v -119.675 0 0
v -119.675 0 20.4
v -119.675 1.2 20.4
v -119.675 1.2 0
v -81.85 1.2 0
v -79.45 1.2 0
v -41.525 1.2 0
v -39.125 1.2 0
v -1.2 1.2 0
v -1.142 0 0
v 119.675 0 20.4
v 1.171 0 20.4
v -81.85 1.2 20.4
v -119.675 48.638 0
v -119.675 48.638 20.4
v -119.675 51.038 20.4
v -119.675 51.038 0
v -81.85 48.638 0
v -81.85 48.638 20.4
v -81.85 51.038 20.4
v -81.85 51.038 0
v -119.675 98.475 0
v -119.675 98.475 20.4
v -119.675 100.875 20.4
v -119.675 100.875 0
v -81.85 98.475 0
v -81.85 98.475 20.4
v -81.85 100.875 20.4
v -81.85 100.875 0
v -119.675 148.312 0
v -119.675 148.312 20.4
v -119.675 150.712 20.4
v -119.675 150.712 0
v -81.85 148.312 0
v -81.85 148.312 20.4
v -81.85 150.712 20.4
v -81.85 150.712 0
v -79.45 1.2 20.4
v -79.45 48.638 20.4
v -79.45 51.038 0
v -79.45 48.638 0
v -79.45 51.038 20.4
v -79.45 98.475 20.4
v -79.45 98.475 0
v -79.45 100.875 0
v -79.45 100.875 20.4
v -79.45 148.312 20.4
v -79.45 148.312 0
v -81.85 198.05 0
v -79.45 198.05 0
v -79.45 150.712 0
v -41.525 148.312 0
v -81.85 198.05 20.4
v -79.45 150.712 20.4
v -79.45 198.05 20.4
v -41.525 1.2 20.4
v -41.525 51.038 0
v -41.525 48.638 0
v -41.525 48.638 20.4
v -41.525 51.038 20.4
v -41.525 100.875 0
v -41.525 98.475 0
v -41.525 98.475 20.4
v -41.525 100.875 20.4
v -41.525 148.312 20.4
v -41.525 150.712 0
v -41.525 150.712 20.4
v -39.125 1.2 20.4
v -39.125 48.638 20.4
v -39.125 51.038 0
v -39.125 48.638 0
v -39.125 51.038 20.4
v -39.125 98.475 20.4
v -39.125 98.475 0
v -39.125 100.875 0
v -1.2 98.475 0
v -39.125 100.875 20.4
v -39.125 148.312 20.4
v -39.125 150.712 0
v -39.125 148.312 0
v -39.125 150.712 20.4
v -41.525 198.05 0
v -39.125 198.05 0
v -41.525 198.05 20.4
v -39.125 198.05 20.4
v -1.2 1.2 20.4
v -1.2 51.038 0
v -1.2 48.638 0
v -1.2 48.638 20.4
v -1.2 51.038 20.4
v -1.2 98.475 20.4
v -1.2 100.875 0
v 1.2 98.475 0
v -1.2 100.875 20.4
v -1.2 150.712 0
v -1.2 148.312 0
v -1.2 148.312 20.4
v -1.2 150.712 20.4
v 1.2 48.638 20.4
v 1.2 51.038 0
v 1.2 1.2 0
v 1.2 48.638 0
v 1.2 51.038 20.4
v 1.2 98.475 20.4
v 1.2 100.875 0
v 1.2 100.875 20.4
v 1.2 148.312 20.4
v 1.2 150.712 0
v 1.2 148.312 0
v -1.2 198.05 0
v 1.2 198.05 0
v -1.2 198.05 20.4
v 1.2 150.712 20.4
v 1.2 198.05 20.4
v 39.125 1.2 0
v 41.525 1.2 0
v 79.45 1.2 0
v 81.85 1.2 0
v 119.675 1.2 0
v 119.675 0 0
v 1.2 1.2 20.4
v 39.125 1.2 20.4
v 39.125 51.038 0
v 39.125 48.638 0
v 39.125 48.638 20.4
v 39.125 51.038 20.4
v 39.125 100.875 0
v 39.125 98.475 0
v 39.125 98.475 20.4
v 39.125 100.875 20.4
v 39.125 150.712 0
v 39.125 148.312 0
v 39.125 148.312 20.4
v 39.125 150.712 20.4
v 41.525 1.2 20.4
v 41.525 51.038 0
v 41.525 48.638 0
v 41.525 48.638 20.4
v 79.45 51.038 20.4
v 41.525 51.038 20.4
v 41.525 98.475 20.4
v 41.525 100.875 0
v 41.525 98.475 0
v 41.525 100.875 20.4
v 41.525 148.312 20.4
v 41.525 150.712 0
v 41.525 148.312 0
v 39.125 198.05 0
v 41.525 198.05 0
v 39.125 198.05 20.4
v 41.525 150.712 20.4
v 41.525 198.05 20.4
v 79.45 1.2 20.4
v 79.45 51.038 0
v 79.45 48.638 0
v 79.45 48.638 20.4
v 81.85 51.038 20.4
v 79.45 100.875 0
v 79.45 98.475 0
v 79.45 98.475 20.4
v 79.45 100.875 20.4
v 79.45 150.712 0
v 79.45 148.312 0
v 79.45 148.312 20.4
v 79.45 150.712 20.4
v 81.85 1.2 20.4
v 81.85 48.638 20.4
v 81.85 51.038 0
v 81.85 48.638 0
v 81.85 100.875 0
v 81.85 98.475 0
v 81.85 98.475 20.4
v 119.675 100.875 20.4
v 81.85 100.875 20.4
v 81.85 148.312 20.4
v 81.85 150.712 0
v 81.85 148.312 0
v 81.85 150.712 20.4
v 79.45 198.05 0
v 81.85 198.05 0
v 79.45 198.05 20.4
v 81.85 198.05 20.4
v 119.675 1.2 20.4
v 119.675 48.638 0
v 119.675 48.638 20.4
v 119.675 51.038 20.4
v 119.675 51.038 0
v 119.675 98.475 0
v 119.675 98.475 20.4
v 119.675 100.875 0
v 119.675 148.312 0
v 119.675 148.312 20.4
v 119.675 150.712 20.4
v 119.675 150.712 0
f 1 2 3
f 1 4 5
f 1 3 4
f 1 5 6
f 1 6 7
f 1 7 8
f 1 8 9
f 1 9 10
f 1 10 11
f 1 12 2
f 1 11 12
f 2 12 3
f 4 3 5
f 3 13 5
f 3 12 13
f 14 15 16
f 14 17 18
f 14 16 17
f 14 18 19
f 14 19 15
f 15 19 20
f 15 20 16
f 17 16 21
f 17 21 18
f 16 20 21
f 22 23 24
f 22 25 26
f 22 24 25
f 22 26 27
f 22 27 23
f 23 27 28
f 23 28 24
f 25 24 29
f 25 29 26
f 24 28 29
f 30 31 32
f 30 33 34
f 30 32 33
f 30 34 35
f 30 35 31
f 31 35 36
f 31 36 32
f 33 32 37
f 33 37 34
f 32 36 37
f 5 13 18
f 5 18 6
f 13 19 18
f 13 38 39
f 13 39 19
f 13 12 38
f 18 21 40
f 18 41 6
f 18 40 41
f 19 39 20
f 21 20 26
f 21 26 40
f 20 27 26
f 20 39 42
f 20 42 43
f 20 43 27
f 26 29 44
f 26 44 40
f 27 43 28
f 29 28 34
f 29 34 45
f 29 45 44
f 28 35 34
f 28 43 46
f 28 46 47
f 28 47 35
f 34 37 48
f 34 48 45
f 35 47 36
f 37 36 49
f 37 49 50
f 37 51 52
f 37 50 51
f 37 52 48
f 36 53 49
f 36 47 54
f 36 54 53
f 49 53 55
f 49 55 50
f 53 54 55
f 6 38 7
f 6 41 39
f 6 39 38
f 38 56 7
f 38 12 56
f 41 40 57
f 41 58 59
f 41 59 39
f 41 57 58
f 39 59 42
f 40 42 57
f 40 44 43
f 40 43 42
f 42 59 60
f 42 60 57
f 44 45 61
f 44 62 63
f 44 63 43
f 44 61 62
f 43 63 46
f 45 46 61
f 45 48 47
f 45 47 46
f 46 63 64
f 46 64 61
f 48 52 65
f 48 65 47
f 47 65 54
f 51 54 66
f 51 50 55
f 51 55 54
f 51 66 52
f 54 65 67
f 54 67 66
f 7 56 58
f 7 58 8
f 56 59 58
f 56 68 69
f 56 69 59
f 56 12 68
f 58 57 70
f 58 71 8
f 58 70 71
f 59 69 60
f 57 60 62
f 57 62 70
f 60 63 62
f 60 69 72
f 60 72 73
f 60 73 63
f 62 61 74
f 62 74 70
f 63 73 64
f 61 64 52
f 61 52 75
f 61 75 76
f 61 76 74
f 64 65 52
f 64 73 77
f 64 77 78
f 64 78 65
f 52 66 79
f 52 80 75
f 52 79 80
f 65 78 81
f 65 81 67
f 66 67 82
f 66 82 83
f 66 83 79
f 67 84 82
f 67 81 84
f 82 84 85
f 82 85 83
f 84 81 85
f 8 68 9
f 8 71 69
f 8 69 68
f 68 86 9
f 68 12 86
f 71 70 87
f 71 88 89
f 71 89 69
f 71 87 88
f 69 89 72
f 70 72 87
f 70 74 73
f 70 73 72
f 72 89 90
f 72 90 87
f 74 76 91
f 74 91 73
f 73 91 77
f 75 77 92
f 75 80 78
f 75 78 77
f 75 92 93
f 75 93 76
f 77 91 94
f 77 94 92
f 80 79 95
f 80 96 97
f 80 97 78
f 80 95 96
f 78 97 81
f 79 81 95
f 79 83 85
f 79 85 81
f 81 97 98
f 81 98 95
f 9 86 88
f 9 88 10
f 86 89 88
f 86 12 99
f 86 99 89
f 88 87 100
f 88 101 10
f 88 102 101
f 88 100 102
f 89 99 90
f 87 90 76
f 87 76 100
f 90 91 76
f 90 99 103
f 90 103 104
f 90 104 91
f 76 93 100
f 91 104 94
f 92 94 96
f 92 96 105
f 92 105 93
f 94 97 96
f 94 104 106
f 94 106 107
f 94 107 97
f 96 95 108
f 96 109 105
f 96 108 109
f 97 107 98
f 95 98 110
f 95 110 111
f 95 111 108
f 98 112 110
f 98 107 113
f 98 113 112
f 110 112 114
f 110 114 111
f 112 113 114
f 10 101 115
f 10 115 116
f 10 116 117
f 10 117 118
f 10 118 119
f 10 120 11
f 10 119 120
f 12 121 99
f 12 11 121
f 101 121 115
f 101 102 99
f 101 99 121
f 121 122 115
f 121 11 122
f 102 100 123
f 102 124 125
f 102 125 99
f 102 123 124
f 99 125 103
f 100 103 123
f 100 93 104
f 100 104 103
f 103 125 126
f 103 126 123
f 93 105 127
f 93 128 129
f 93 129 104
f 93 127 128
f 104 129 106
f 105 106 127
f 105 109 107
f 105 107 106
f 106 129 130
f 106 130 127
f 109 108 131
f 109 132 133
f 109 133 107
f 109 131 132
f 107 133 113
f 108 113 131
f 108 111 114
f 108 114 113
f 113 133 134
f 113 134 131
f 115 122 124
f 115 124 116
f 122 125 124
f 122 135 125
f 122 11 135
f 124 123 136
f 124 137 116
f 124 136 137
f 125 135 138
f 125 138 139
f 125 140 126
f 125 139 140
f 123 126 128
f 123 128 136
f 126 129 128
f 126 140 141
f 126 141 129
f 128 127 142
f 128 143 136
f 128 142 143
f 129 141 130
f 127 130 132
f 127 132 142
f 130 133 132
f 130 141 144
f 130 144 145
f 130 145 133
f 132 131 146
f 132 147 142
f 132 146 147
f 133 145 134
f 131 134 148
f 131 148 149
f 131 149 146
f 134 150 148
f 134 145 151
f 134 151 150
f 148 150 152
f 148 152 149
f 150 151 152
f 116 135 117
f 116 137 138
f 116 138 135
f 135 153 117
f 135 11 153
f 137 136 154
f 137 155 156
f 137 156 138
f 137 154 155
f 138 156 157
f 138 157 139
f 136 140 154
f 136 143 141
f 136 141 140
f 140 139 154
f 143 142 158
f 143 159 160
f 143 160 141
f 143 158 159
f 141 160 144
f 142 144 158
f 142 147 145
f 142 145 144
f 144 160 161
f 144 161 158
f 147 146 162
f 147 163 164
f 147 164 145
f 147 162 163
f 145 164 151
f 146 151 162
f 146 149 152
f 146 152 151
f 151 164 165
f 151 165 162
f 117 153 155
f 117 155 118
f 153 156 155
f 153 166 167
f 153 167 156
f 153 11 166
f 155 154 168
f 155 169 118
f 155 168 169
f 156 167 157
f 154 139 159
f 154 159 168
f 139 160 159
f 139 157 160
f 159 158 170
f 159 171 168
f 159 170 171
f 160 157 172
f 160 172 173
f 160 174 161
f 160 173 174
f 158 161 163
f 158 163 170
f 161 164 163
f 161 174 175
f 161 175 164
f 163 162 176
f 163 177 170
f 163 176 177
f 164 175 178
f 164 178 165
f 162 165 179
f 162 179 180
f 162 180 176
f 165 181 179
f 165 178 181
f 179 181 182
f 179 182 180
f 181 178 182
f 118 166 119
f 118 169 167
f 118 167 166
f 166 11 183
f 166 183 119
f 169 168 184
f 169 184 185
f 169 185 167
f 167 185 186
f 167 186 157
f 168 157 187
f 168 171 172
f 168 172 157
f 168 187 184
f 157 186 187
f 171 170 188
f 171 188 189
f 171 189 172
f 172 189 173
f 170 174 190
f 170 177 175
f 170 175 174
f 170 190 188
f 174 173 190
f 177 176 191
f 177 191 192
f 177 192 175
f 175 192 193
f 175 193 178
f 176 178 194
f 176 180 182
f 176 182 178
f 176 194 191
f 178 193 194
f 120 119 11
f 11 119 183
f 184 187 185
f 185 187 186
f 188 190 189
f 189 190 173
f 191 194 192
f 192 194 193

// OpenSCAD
// Start: lazy_union
default_5_default_5();
// End: lazy_union

// Modules.

// 'PartMaterial undef-default - default 5.0'
module default_5_default_5() {
  // 'None : _combine_solids_and_holes'
  union() {
    // 'insert : _combine_solids_and_holes'
    union() {
      // 'cut : _combine_solids_and_holes'
      intersection() {
        // 'mix_grid_box'
        multmatrix(m=[[0.0, 1.0, 0.0, 0.0], [-1.0, -0.0, -0.0, -0.0], [0.0, 0.0, 1.0, 0.0], [0.0, 0.0, 0.0, 1.0]]) {
          // '_combine_solids_and_holes'
          difference() {
            // 'mix_grid_box : _combine_solids_and_holes'
            union() {
              // 'box'
              multmatrix(m=[[1.0, 0.0, 0.0, -200.55], [0.0, 1.0, 0.0, -122.17500000000001], [0.0, 0.0, 1.0, 0.0], [0.0, 0.0, 0.0, 1.0]]) {
                // 'box : _combine_solids_and_holes'
                union() {
                  // 'box'
                  cube(size=[401.1, 244.35000000000002, 20.4]);
                }
              }
            }
            // 'mix_grid_box'
            multmatrix(m=[[1.0, 0.0, 0.0, -198.15], [0.0, 1.0, 0.0, 81.85], [0.0, 0.0, 1.0, -0.01], [0.0, 0.0, 0.0, 1.0]]) {
              // "('hole', 0, 0) : _combine_solids_and_holes"
              union() {
                // ('hole', 0, 0)
                cube(size=[47.4375, 37.925000000000004, 20.42]);
              }
            }
            // 'mix_grid_box'
            multmatrix(m=[[1.0, 0.0, 0.0, -198.15], [0.0, 1.0, 0.0, 41.52500000000001], [0.0, 0.0, 1.0, -0.01], [0.0, 0.0, 0.0, 1.0]]) {
              // "('hole', 0, 1) : _combine_solids_and_holes"
              union() {
                // ('hole', 0, 1)
                cube(size=[47.4375, 37.925000000000004, 20.42]);
              }
            }
            // 'mix_grid_box'
            multmatrix(m=[[1.0, 0.0, 0.0, -198.15], [0.0, 1.0, 0.0, 1.1999999999999957], [0.0, 0.0, 1.0, -0.01], [0.0, 0.0, 0.0, 1.0]]) {
              // "('hole', 0, 2) : _combine_solids_and_holes"
              union() {
                // ('hole', 0, 2)
                cube(size=[47.4375, 37.925000000000004, 20.42]);
              }
            }
            // 'mix_grid_box'
            multmatrix(m=[[1.0, 0.0, 0.0, -198.15], [0.0, 1.0, 0.0, -39.12500000000001], [0.0, 0.0, 1.0, -0.01], [0.0, 0.0, 0.0, 1.0]]) {
              // "('hole', 0, 3) : _combine_solids_and_holes"
              union() {
                // ('hole', 0, 3)
                cube(size=[47.4375, 37.925000000000004, 20.42]);
              }
            }
            // 'mix_grid_box'
            multmatrix(m=[[1.0, 0.0, 0.0, -198.15], [0.0, 1.0, 0.0, -79.45000000000002], [0.0, 0.0, 1.0, -0.01], [0.0, 0.0, 0.0, 1.0]]) {
              // "('hole', 0, 4) : _combine_solids_and_holes"
              union() {
                // ('hole', 0, 4)
                cube(size=[47.4375, 37.925000000000004, 20.42]);
              }
            }
            // 'mix_grid_box'
            multmatrix(m=[[1.0, 0.0, 0.0, -198.15], [0.0, 1.0, 0.0, -119.77500000000003], [0.0, 0.0, 1.0, -0.01], [0.0, 0.0, 0.0, 1.0]]) {
              // "('hole', 0, 5) : _combine_solids_and_holes"
              union() {
                // ('hole', 0, 5)
                cube(size=[47.4375, 37.925000000000004, 20.42]);
              }
            }
            // 'mix_grid_box'
            multmatrix(m=[[1.0, 0.0, 0.0, -148.3125], [0.0, 1.0, 0.0, 81.85], [0.0, 0.0, 1.0, -0.01], [0.0, 0.0, 0.0, 1.0]]) {
              // "('hole', 1, 0) : _combine_solids_and_holes"
              union() {
                // ('hole', 1, 0)
                cube(size=[47.4375, 37.925000000000004, 20.42]);
              }
            }
            // 'mix_grid_box'
            multmatrix(m=[[1.0, 0.0, 0.0, -148.3125], [0.0, 1.0, 0.0, 41.52500000000001], [0.0, 0.0, 1.0, -0.01], [0.0, 0.0, 0.0, 1.0]]) {
              // "('hole', 1, 1) : _combine_solids_and_holes"
              union() {
                // ('hole', 1, 1)
                cube(size=[47.4375, 37.925000000000004, 20.42]);
              }
            }
            // 'mix_grid_box'
            multmatrix(m=[[1.0, 0.0, 0.0, -148.3125], [0.0, 1.0, 0.0, 1.1999999999999957], [0.0, 0.0, 1.0, -0.01], [0.0, 0.0, 0.0, 1.0]]) {
              // "('hole', 1, 2) : _combine_solids_and_holes"
              union() {
                // ('hole', 1, 2)
                cube(size=[47.4375, 37.925000000000004, 20.42]);
              }
            }
            // 'mix_grid_box'
            multmatrix(m=[[1.0, 0.0, 0.0, -148.3125], [0.0, 1.0, 0.0, -39.12500000000001], [0.0, 0.0, 1.0, -0.01], [0.0, 0.0, 0.0, 1.0]]) {
              // "('hole', 1, 3) : _combine_solids_and_holes"
              union() {
                // ('hole', 1, 3)
                cube(size=[47.4375, 37.925000000000004, 20.42]);
              }
            }
            // 'mix_grid_box'
            multmatrix(m=[[1.0, 0.0, 0.0, -148.3125], [0.0, 1.0, 0.0, -79.45000000000002], [0.0, 0.0, 1.0, -0.01], [0.0, 0.0, 0.0, 1.0]]) {
              // "('hole', 1, 4) : _combine_solids_and_holes"
              union() {
                // ('hole', 1, 4)
                cube(size=[47.4375, 37.925000000000004, 20.42]);
              }
            }
            // 'mix_grid_box'
            multmatrix(m=[[1.0, 0.0, 0.0, -148.3125], [0.0, 1.0, 0.0, -119.77500000000003], [0.0, 0.0, 1.0, -0.01], [0.0, 0.0, 0.0, 1.0]]) {
              // "('hole', 1, 5) : _combine_solids_and_holes"
              union() {
                // ('hole', 1, 5)
                cube(size=[47.4375, 37.925000000000004, 20.42]);
              }
            }
            // 'mix_grid_box'
            multmatrix(m=[[1.0, 0.0, 0.0, -98.47500000000002], [0.0, 1.0, 0.0, 81.85], [0.0, 0.0, 1.0, -0.01], [0.0, 0.0, 0.0, 1.0]]) {
              // "('hole', 2, 0) : _combine_solids_and_holes"
              union() {
                // ('hole', 2, 0)
                cube(size=[47.4375, 37.925000000000004, 20.42]);
              }
            }
            // 'mix_grid_box'
            multmatrix(m=[[1.0, 0.0, 0.0, -98.47500000000002], [0.0, 1.0, 0.0, 41.52500000000001], [0.0, 0.0, 1.0, -0.01], [0.0, 0.0, 0.0, 1.0]]) {
              // "('hole', 2, 1) : _combine_solids_and_holes"
              union() {
                // ('hole', 2, 1)
                cube(size=[47.4375, 37.925000000000004, 20.42]);
              }
            }
            // 'mix_grid_box'
            multmatrix(m=[[1.0, 0.0, 0.0, -98.47500000000002], [0.0, 1.0, 0.0, 1.1999999999999957], [0.0, 0.0, 1.0, -0.01], [0.0, 0.0, 0.0, 1.0]]) {
              // "('hole', 2, 2) : _combine_solids_and_holes"
              union() {
                // ('hole', 2, 2)
                cube(size=[47.4375, 37.925000000000004, 20.42]);
              }
            }
            // 'mix_grid_box'
            multmatrix(m=[[1.0, 0.0, 0.0, -98.47500000000002], [0.0, 1.0, 0.0, -39.12500000000001], [0.0, 0.0, 1.0, -0.01], [0.0, 0.0, 0.0, 1.0]]) {
              // "('hole', 2, 3) : _combine_solids_and_holes"
              union() {
                // ('hole', 2, 3)
                cube(size=[47.4375, 37.925000000000004, 20.42]);
              }
            }
            // 'mix_grid_box'
            multmatrix(m=[[1.0, 0.0, 0.0, -98.47500000000002], [0.0, 1.0, 0.0, -79.45000000000002], [0.0, 0.0, 1.0, -0.01], [0.0, 0.0, 0.0, 1.0]]) {
              // "('hole', 2, 4) : _combine_solids_and_holes"
              union() {
                // ('hole', 2, 4)
                cube(size=[47.4375, 37.925000000000004, 20.42]);
              }
            }
            // 'mix_grid_box'
            multmatrix(m=[[1.0, 0.0, 0.0, -98.47500000000002], [0.0, 1.0, 0.0, -119.77500000000003], [0.0, 0.0, 1.0, -0.01], [0.0, 0.0, 0.0, 1.0]]) {
              // "('hole', 2, 5) : _combine_solids_and_holes"
              union() {
                // ('hole', 2, 5)
                cube(size=[47.4375, 37.925000000000004, 20.42]);
              }
            }
            // 'mix_grid_box'
            multmatrix(m=[[1.0, 0.0, 0.0, -48.63750000000002], [0.0, 1.0, 0.0, 81.85], [0.0, 0.0, 1.0, -0.01], [0.0, 0.0, 0.0, 1.0]]) {
              // "('hole', 3, 0) : _combine_solids_and_holes"
              union() {
                // ('hole', 3, 0)
                cube(size=[47.4375, 37.925000000000004, 20.42]);
              }
            }
            // 'mix_grid_box'
            multmatrix(m=[[1.0, 0.0, 0.0, -48.63750000000002], [0.0, 1.0, 0.0, 41.52500000000001], [0.0, 0.0, 1.0, -0.01], [0.0, 0.0, 0.0, 1.0]]) {
              // "('hole', 3, 1) : _combine_solids_and_holes"
              union() {
                // ('hole', 3, 1)
                cube(size=[47.4375, 37.925000000000004, 20.42]);
              }
            }
            // 'mix_grid_box'
            multmatrix(m=[[1.0, 0.0, 0.0, -48.63750000000002], [0.0, 1.0, 0.0, 1.1999999999999957], [0.0, 0.0, 1.0, -0.01], [0.0, 0.0, 0.0, 1.0]]) {
              // "('hole', 3, 2) : _combine_solids_and_holes"
              union() {
                // ('hole', 3, 2)
                cube(size=[47.4375, 37.925000000000004, 20.42]);
              }
            }
            // 'mix_grid_box'
            multmatrix(m=[[1.0, 0.0, 0.0, -48.63750000000002], [0.0, 1.0, 0.0, -39.12500000000001], [0.0, 0.0, 1.0, -0.01], [0.0, 0.0, 0.0, 1.0]]) {
              // "('hole', 3, 3) : _combine_solids_and_holes"
              union() {
                // ('hole', 3, 3)
                cube(size=[47.4375, 37.925000000000004, 20.42]);
              }
            }
            // 'mix_grid_box'
            multmatrix(m=[[1.0, 0.0, 0.0, -48.63750000000002], [0.0, 1.0, 0.0, -79.45000000000002], [0.0, 0.0, 1.0, -0.01], [0.0, 0.0, 0.0, 1.0]]) {
              // "('hole', 3, 4) : _combine_solids_and_holes"
              union() {
                // ('hole', 3, 4)
                cube(size=[47.4375, 37.925000000000004, 20.42]);
              }
            }
            // 'mix_grid_box'
            multmatrix(m=[[1.0, 0.0, 0.0, -48.63750000000002], [0.0, 1.0, 0.0, -119.77500000000003], [0.0, 0.0, 1.0, -0.01], [0.0, 0.0, 0.0, 1.0]]) {
              // "('hole', 3, 5) : _combine_solids_and_holes"
              union() {
                // ('hole', 3, 5)
                cube(size=[47.4375, 37.925000000000004, 20.42]);
              }
            }
            // 'mix_grid_box'
            multmatrix(m=[[1.0, 0.0, 0.0, 1.1999999999999886], [0.0, 1.0, 0.0, 81.85], [0.0, 0.0, 1.0, -0.01], [0.0, 0.0, 0.0, 1.0]]) {
              // "('hole', 4, 0) : _combine_solids_and_holes"
              union() {
                // ('hole', 4, 0)
                cube(size=[47.4375, 37.925000000000004, 20.42]);
              }
            }
            // 'mix_grid_box'
            multmatrix(m=[[1.0, 0.0, 0.0, 1.1999999999999886], [0.0, 1.0, 0.0, 41.52500000000001], [0.0, 0.0, 1.0, -0.01], [0.0, 0.0, 0.0, 1.0]]) {
              // "('hole', 4, 1) : _combine_solids_and_holes"
              union() {
                // ('hole', 4, 1)
                cube(size=[47.4375, 37.925000000000004, 20.42]);
              }
            }
            // 'mix_grid_box'
            multmatrix(m=[[1.0, 0.0, 0.0, 1.1999999999999886], [0.0, 1.0, 0.0, 1.1999999999999957], [0.0, 0.0, 1.0, -0.01], [0.0, 0.0, 0.0, 1.0]]) {
              // "('hole', 4, 2) : _combine_solids_and_holes"
              union() {
                // ('hole', 4, 2)
                cube(size=[47.4375, 37.925000000000004, 20.42]);
              }
            }
            // 'mix_grid_box'
            multmatrix(m=[[1.0, 0.0, 0.0, 1.1999999999999886], [0.0, 1.0, 0.0, -39.12500000000001], [0.0, 0.0, 1.0, -0.01], [0.0, 0.0, 0.0, 1.0]]) {
              // "('hole', 4, 3) : _combine_solids_and_holes"
              union() {
                // ('hole', 4, 3)
                cube(size=[47.4375, 37.925000000000004, 20.42]);
              }
            }
            // 'mix_grid_box'
            multmatrix(m=[[1.0, 0.0, 0.0, 1.1999999999999886], [0.0, 1.0, 0.0, -79.45000000000002], [0.0, 0.0, 1.0, -0.01], [0.0, 0.0, 0.0, 1.0]]) {
              // "('hole', 4, 4) : _combine_solids_and_holes"
              union() {
                // ('hole', 4, 4)
                cube(size=[47.4375, 37.925000000000004, 20.42]);
              }
            }
            // 'mix_grid_box'
            multmatrix(m=[[1.0, 0.0, 0.0, 1.1999999999999886], [0.0, 1.0, 0.0, -119.77500000000003], [0.0, 0.0, 1.0, -0.01], [0.0, 0.0, 0.0, 1.0]]) {
              // "('hole', 4, 5) : _combine_solids_and_holes"
              union() {
                // ('hole', 4, 5)
                cube(size=[47.4375, 37.925000000000004, 20.42]);
              }
            }
            // 'mix_grid_box'
            multmatrix(m=[[1.0, 0.0, 0.0, 51.037499999999994], [0.0, 1.0, 0.0, 81.85], [0.0, 0.0, 1.0, -0.01], [0.0, 0.0, 0.0, 1.0]]) {
              // "('hole', 5, 0) : _combine_solids_and_holes"
              union() {
                // ('hole', 5, 0)
                cube(size=[47.4375, 37.925000000000004, 20.42]);
              }
            }
            // 'mix_grid_box'
            multmatrix(m=[[1.0, 0.0, 0.0, 51.037499999999994], [0.0, 1.0, 0.0, 41.52500000000001], [0.0, 0.0, 1.0, -0.01], [0.0, 0.0, 0.0, 1.0]]) {
              // "('hole', 5, 1) : _combine_solids_and_holes"
              union() {
                // ('hole', 5, 1)
                cube(size=[47.4375, 37.925000000000004, 20.42]);
              }
            }
            // 'mix_grid_box'
            multmatrix(m=[[1.0, 0.0, 0.0, 51.037499999999994], [0.0, 1.0, 0.0, 1.1999999999999957], [0.0, 0.0, 1.0, -0.01], [0.0, 0.0, 0.0, 1.0]]) {
              // "('hole', 5, 2) : _combine_solids_and_holes"
              union() {
                // ('hole', 5, 2)
                cube(size=[47.4375, 37.925000000000004, 20.42]);
              }
            }
            // 'mix_grid_box'
            multmatrix(m=[[1.0, 0.0, 0.0, 51.037499999999994], [0.0, 1.0, 0.0, -39.12500000000001], [0.0, 0.0, 1.0, -0.01], [0.0, 0.0, 0.0, 1.0]]) {
              // "('hole', 5, 3) : _combine_solids_and_holes"
              union() {
                // ('hole', 5, 3)
                cube(size=[47.4375, 37.925000000000004, 20.42]);
              }
            }
            // 'mix_grid_box'
            multmatrix(m=[[1.0, 0.0, 0.0, 51.037499999999994], [0.0, 1.0, 0.0, -79.45000000000002], [0.0, 0.0, 1.0, -0.01], [0.0, 0.0, 0.0, 1.0]]) {
              // "('hole', 5, 4) : _combine_solids_and_holes"
              union() {
                // ('hole', 5, 4)
                cube(size=[47.4375, 37.925000000000004, 20.42]);
              }
            }
            // 'mix_grid_box'
            multmatrix(m=[[1.0, 0.0, 0.0, 51.037499999999994], [0.0, 1.0, 0.0, -119.77500000000003], [0.0, 0.0, 1.0, -0.01], [0.0, 0.0, 0.0, 1.0]]) {
              // "('hole', 5, 5) : _combine_solids_and_holes"
              union() {
                // ('hole', 5, 5)
                cube(size=[47.4375, 37.925000000000004, 20.42]);
              }
            }
            // 'mix_grid_box'
            multmatrix(m=[[1.0, 0.0, 0.0, 100.875], [0.0, 1.0, 0.0, 81.85], [0.0, 0.0, 1.0, -0.01], [0.0, 0.0, 0.0, 1.0]]) {
              // "('hole', 6, 0) : _combine_solids_and_holes"
              union() {
                // ('hole', 6, 0)
                cube(size=[47.4375, 37.925000000000004, 20.42]);
              }
            }
            // 'mix_grid_box'
            multmatrix(m=[[1.0, 0.0, 0.0, 100.875], [0.0, 1.0, 0.0, 41.52500000000001], [0.0, 0.0, 1.0, -0.01], [0.0, 0.0, 0.0, 1.0]]) {
              // "('hole', 6, 1) : _combine_solids_and_holes"
              union() {
                // ('hole', 6, 1)
                cube(size=[47.4375, 37.925000000000004, 20.42]);
              }
            }
            // 'mix_grid_box'
            multmatrix(m=[[1.0, 0.0, 0.0, 100.875], [0.0, 1.0, 0.0, 1.1999999999999957], [0.0, 0.0, 1.0, -0.01], [0.0, 0.0, 0.0, 1.0]]) {
              // "('hole', 6, 2) : _combine_solids_and_holes"
              union() {
                // ('hole', 6, 2)
                cube(size=[47.4375, 37.925000000000004, 20.42]);
              }
            }
            // 'mix_grid_box'
            multmatrix(m=[[1.0, 0.0, 0.0, 100.875], [0.0, 1.0, 0.0, -39.12500000000001], [0.0, 0.0, 1.0, -0.01], [0.0, 0.0, 0.0, 1.0]]) {
              // "('hole', 6, 3) : _combine_solids_and_holes"
              union() {
                // ('hole', 6, 3)
                cube(size=[47.4375, 37.925000000000004, 20.42]);
              }
            }
            // 'mix_grid_box'
            multmatrix(m=[[1.0, 0.0, 0.0, 100.875], [0.0, 1.0, 0.0, -79.45000000000002], [0.0, 0.0, 1.0, -0.01], [0.0, 0.0, 0.0, 1.0]]) {
              // "('hole', 6, 4) : _combine_solids_and_holes"
              union() {
                // ('hole', 6, 4)
                cube(size=[47.4375, 37.925000000000004, 20.42]);
              }
            }
            // 'mix_grid_box'
            multmatrix(m=[[1.0, 0.0, 0.0, 100.875], [0.0, 1.0, 0.0, -119.77500000000003], [0.0, 0.0, 1.0, -0.01], [0.0, 0.0, 0.0, 1.0]]) {
              // "('hole', 6, 5) : _combine_solids_and_holes"
              union() {
                // ('hole', 6, 5)
                cube(size=[47.4375, 37.925000000000004, 20.42]);
              }
            }
            // 'mix_grid_box'
            multmatrix(m=[[1.0, 0.0, 0.0, 150.71249999999998], [0.0, 1.0, 0.0, 81.85], [0.0, 0.0, 1.0, -0.01], [0.0, 0.0, 0.0, 1.0]]) {
              // "('hole', 7, 0) : _combine_solids_and_holes"
              union() {
                // ('hole', 7, 0)
                cube(size=[47.4375, 37.925000000000004, 20.42]);
              }
            }
            // 'mix_grid_box'
            multmatrix(m=[[1.0, 0.0, 0.0, 150.71249999999998], [0.0, 1.0, 0.0, 41.52500000000001], [0.0, 0.0, 1.0, -0.01], [0.0, 0.0, 0.0, 1.0]]) {
              // "('hole', 7, 1) : _combine_solids_and_holes"
              union() {
                // ('hole', 7, 1)
                cube(size=[47.4375, 37.925000000000004, 20.42]);
              }
            }
            // 'mix_grid_box'
            multmatrix(m=[[1.0, 0.0, 0.0, 150.71249999999998], [0.0, 1.0, 0.0, 1.1999999999999957], [0.0, 0.0, 1.0, -0.01], [0.0, 0.0, 0.0, 1.0]]) {
              // "('hole', 7, 2) : _combine_solids_and_holes"
              union() {
                // ('hole', 7, 2)
                cube(size=[47.4375, 37.925000000000004, 20.42]);
              }
            }
            // 'mix_grid_box'
            multmatrix(m=[[1.0, 0.0, 0.0, 150.71249999999998], [0.0, 1.0, 0.0, -39.12500000000001], [0.0, 0.0, 1.0, -0.01], [0.0, 0.0, 0.0, 1.0]]) {
              // "('hole', 7, 3) : _combine_solids_and_holes"
              union() {
                // ('hole', 7, 3)
                cube(size=[47.4375, 37.925000000000004, 20.42]);
              }
            }
            // 'mix_grid_box'
            multmatrix(m=[[1.0, 0.0, 0.0, 150.71249999999998], [0.0, 1.0, 0.0, -79.45000000000002], [0.0, 0.0, 1.0, -0.01], [0.0, 0.0, 0.0, 1.0]]) {
              // "('hole', 7, 4) : _combine_solids_and_holes"
              union() {
                // ('hole', 7, 4)
                cube(size=[47.4375, 37.925000000000004, 20.42]);
              }
            }
            // 'mix_grid_box'
            multmatrix(m=[[1.0, 0.0, 0.0, 150.71249999999998], [0.0, 1.0, 0.0, -119.77500000000003], [0.0, 0.0, 1.0, -0.01], [0.0, 0.0, 0.0, 1.0]]) {
              // "('hole', 7, 5) : _combine_solids_and_holes"
              union() {
                // ('hole', 7, 5)
                cube(size=[47.4375, 37.925000000000004, 20.42]);
              }
            }
          }
        }
        // 'cut'
        multmatrix(m=[[0.0, 1.0, 0.0, -119.67500000000001], [1.0, 0.0, 0.0, 0.0], [0.0, 0.0, -1.0, 20.4], [0.0, 0.0, 0.0, 1.0]]) {
          // 'cut : _combine_solids_and_holes'
          union() {
            // 'cut'
            cube(size=[198.05, 239.35000000000002, 20.4]);
          }
        }
      }
    }
  }
} // end module default_5_default_5
